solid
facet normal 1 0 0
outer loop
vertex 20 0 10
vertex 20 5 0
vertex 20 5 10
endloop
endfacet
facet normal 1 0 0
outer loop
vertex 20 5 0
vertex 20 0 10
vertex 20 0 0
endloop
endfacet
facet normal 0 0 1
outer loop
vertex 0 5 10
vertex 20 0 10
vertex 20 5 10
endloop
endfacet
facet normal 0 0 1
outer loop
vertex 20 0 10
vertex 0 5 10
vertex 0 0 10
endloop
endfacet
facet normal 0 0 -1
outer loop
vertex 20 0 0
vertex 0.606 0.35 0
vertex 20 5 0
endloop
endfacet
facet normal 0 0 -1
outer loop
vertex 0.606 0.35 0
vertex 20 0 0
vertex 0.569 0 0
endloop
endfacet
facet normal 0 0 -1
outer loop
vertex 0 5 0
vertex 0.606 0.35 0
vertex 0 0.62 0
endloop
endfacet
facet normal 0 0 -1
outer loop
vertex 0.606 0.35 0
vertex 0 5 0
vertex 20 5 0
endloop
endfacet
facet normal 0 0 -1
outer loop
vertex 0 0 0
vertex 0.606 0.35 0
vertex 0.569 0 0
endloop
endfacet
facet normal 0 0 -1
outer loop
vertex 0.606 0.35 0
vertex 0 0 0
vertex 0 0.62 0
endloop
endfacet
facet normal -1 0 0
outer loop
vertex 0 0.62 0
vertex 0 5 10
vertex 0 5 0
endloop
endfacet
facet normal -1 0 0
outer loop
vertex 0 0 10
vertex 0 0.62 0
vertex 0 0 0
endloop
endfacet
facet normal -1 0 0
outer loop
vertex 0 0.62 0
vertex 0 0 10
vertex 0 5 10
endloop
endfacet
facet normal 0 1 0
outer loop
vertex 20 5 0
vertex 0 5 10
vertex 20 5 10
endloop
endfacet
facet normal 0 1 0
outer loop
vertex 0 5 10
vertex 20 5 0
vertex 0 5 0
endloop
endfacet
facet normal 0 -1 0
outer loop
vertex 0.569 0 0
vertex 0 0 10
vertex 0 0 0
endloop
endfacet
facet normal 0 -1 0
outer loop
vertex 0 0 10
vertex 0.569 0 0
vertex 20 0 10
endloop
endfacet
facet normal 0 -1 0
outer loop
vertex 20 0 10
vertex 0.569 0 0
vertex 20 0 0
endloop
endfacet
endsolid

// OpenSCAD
module profile(height, width, depth, angle = 0, radius = 1) {
  difference() {
    cube([width, depth, height]);
    rotate([0,0,angle])
      translate([0,0,-height/2])
      cylinder(h=height, r1=radius, r2=radius * 0.7, center=true);
  }
}

profile(height=10, width=20, depth=5, angle=30, radius=1);
